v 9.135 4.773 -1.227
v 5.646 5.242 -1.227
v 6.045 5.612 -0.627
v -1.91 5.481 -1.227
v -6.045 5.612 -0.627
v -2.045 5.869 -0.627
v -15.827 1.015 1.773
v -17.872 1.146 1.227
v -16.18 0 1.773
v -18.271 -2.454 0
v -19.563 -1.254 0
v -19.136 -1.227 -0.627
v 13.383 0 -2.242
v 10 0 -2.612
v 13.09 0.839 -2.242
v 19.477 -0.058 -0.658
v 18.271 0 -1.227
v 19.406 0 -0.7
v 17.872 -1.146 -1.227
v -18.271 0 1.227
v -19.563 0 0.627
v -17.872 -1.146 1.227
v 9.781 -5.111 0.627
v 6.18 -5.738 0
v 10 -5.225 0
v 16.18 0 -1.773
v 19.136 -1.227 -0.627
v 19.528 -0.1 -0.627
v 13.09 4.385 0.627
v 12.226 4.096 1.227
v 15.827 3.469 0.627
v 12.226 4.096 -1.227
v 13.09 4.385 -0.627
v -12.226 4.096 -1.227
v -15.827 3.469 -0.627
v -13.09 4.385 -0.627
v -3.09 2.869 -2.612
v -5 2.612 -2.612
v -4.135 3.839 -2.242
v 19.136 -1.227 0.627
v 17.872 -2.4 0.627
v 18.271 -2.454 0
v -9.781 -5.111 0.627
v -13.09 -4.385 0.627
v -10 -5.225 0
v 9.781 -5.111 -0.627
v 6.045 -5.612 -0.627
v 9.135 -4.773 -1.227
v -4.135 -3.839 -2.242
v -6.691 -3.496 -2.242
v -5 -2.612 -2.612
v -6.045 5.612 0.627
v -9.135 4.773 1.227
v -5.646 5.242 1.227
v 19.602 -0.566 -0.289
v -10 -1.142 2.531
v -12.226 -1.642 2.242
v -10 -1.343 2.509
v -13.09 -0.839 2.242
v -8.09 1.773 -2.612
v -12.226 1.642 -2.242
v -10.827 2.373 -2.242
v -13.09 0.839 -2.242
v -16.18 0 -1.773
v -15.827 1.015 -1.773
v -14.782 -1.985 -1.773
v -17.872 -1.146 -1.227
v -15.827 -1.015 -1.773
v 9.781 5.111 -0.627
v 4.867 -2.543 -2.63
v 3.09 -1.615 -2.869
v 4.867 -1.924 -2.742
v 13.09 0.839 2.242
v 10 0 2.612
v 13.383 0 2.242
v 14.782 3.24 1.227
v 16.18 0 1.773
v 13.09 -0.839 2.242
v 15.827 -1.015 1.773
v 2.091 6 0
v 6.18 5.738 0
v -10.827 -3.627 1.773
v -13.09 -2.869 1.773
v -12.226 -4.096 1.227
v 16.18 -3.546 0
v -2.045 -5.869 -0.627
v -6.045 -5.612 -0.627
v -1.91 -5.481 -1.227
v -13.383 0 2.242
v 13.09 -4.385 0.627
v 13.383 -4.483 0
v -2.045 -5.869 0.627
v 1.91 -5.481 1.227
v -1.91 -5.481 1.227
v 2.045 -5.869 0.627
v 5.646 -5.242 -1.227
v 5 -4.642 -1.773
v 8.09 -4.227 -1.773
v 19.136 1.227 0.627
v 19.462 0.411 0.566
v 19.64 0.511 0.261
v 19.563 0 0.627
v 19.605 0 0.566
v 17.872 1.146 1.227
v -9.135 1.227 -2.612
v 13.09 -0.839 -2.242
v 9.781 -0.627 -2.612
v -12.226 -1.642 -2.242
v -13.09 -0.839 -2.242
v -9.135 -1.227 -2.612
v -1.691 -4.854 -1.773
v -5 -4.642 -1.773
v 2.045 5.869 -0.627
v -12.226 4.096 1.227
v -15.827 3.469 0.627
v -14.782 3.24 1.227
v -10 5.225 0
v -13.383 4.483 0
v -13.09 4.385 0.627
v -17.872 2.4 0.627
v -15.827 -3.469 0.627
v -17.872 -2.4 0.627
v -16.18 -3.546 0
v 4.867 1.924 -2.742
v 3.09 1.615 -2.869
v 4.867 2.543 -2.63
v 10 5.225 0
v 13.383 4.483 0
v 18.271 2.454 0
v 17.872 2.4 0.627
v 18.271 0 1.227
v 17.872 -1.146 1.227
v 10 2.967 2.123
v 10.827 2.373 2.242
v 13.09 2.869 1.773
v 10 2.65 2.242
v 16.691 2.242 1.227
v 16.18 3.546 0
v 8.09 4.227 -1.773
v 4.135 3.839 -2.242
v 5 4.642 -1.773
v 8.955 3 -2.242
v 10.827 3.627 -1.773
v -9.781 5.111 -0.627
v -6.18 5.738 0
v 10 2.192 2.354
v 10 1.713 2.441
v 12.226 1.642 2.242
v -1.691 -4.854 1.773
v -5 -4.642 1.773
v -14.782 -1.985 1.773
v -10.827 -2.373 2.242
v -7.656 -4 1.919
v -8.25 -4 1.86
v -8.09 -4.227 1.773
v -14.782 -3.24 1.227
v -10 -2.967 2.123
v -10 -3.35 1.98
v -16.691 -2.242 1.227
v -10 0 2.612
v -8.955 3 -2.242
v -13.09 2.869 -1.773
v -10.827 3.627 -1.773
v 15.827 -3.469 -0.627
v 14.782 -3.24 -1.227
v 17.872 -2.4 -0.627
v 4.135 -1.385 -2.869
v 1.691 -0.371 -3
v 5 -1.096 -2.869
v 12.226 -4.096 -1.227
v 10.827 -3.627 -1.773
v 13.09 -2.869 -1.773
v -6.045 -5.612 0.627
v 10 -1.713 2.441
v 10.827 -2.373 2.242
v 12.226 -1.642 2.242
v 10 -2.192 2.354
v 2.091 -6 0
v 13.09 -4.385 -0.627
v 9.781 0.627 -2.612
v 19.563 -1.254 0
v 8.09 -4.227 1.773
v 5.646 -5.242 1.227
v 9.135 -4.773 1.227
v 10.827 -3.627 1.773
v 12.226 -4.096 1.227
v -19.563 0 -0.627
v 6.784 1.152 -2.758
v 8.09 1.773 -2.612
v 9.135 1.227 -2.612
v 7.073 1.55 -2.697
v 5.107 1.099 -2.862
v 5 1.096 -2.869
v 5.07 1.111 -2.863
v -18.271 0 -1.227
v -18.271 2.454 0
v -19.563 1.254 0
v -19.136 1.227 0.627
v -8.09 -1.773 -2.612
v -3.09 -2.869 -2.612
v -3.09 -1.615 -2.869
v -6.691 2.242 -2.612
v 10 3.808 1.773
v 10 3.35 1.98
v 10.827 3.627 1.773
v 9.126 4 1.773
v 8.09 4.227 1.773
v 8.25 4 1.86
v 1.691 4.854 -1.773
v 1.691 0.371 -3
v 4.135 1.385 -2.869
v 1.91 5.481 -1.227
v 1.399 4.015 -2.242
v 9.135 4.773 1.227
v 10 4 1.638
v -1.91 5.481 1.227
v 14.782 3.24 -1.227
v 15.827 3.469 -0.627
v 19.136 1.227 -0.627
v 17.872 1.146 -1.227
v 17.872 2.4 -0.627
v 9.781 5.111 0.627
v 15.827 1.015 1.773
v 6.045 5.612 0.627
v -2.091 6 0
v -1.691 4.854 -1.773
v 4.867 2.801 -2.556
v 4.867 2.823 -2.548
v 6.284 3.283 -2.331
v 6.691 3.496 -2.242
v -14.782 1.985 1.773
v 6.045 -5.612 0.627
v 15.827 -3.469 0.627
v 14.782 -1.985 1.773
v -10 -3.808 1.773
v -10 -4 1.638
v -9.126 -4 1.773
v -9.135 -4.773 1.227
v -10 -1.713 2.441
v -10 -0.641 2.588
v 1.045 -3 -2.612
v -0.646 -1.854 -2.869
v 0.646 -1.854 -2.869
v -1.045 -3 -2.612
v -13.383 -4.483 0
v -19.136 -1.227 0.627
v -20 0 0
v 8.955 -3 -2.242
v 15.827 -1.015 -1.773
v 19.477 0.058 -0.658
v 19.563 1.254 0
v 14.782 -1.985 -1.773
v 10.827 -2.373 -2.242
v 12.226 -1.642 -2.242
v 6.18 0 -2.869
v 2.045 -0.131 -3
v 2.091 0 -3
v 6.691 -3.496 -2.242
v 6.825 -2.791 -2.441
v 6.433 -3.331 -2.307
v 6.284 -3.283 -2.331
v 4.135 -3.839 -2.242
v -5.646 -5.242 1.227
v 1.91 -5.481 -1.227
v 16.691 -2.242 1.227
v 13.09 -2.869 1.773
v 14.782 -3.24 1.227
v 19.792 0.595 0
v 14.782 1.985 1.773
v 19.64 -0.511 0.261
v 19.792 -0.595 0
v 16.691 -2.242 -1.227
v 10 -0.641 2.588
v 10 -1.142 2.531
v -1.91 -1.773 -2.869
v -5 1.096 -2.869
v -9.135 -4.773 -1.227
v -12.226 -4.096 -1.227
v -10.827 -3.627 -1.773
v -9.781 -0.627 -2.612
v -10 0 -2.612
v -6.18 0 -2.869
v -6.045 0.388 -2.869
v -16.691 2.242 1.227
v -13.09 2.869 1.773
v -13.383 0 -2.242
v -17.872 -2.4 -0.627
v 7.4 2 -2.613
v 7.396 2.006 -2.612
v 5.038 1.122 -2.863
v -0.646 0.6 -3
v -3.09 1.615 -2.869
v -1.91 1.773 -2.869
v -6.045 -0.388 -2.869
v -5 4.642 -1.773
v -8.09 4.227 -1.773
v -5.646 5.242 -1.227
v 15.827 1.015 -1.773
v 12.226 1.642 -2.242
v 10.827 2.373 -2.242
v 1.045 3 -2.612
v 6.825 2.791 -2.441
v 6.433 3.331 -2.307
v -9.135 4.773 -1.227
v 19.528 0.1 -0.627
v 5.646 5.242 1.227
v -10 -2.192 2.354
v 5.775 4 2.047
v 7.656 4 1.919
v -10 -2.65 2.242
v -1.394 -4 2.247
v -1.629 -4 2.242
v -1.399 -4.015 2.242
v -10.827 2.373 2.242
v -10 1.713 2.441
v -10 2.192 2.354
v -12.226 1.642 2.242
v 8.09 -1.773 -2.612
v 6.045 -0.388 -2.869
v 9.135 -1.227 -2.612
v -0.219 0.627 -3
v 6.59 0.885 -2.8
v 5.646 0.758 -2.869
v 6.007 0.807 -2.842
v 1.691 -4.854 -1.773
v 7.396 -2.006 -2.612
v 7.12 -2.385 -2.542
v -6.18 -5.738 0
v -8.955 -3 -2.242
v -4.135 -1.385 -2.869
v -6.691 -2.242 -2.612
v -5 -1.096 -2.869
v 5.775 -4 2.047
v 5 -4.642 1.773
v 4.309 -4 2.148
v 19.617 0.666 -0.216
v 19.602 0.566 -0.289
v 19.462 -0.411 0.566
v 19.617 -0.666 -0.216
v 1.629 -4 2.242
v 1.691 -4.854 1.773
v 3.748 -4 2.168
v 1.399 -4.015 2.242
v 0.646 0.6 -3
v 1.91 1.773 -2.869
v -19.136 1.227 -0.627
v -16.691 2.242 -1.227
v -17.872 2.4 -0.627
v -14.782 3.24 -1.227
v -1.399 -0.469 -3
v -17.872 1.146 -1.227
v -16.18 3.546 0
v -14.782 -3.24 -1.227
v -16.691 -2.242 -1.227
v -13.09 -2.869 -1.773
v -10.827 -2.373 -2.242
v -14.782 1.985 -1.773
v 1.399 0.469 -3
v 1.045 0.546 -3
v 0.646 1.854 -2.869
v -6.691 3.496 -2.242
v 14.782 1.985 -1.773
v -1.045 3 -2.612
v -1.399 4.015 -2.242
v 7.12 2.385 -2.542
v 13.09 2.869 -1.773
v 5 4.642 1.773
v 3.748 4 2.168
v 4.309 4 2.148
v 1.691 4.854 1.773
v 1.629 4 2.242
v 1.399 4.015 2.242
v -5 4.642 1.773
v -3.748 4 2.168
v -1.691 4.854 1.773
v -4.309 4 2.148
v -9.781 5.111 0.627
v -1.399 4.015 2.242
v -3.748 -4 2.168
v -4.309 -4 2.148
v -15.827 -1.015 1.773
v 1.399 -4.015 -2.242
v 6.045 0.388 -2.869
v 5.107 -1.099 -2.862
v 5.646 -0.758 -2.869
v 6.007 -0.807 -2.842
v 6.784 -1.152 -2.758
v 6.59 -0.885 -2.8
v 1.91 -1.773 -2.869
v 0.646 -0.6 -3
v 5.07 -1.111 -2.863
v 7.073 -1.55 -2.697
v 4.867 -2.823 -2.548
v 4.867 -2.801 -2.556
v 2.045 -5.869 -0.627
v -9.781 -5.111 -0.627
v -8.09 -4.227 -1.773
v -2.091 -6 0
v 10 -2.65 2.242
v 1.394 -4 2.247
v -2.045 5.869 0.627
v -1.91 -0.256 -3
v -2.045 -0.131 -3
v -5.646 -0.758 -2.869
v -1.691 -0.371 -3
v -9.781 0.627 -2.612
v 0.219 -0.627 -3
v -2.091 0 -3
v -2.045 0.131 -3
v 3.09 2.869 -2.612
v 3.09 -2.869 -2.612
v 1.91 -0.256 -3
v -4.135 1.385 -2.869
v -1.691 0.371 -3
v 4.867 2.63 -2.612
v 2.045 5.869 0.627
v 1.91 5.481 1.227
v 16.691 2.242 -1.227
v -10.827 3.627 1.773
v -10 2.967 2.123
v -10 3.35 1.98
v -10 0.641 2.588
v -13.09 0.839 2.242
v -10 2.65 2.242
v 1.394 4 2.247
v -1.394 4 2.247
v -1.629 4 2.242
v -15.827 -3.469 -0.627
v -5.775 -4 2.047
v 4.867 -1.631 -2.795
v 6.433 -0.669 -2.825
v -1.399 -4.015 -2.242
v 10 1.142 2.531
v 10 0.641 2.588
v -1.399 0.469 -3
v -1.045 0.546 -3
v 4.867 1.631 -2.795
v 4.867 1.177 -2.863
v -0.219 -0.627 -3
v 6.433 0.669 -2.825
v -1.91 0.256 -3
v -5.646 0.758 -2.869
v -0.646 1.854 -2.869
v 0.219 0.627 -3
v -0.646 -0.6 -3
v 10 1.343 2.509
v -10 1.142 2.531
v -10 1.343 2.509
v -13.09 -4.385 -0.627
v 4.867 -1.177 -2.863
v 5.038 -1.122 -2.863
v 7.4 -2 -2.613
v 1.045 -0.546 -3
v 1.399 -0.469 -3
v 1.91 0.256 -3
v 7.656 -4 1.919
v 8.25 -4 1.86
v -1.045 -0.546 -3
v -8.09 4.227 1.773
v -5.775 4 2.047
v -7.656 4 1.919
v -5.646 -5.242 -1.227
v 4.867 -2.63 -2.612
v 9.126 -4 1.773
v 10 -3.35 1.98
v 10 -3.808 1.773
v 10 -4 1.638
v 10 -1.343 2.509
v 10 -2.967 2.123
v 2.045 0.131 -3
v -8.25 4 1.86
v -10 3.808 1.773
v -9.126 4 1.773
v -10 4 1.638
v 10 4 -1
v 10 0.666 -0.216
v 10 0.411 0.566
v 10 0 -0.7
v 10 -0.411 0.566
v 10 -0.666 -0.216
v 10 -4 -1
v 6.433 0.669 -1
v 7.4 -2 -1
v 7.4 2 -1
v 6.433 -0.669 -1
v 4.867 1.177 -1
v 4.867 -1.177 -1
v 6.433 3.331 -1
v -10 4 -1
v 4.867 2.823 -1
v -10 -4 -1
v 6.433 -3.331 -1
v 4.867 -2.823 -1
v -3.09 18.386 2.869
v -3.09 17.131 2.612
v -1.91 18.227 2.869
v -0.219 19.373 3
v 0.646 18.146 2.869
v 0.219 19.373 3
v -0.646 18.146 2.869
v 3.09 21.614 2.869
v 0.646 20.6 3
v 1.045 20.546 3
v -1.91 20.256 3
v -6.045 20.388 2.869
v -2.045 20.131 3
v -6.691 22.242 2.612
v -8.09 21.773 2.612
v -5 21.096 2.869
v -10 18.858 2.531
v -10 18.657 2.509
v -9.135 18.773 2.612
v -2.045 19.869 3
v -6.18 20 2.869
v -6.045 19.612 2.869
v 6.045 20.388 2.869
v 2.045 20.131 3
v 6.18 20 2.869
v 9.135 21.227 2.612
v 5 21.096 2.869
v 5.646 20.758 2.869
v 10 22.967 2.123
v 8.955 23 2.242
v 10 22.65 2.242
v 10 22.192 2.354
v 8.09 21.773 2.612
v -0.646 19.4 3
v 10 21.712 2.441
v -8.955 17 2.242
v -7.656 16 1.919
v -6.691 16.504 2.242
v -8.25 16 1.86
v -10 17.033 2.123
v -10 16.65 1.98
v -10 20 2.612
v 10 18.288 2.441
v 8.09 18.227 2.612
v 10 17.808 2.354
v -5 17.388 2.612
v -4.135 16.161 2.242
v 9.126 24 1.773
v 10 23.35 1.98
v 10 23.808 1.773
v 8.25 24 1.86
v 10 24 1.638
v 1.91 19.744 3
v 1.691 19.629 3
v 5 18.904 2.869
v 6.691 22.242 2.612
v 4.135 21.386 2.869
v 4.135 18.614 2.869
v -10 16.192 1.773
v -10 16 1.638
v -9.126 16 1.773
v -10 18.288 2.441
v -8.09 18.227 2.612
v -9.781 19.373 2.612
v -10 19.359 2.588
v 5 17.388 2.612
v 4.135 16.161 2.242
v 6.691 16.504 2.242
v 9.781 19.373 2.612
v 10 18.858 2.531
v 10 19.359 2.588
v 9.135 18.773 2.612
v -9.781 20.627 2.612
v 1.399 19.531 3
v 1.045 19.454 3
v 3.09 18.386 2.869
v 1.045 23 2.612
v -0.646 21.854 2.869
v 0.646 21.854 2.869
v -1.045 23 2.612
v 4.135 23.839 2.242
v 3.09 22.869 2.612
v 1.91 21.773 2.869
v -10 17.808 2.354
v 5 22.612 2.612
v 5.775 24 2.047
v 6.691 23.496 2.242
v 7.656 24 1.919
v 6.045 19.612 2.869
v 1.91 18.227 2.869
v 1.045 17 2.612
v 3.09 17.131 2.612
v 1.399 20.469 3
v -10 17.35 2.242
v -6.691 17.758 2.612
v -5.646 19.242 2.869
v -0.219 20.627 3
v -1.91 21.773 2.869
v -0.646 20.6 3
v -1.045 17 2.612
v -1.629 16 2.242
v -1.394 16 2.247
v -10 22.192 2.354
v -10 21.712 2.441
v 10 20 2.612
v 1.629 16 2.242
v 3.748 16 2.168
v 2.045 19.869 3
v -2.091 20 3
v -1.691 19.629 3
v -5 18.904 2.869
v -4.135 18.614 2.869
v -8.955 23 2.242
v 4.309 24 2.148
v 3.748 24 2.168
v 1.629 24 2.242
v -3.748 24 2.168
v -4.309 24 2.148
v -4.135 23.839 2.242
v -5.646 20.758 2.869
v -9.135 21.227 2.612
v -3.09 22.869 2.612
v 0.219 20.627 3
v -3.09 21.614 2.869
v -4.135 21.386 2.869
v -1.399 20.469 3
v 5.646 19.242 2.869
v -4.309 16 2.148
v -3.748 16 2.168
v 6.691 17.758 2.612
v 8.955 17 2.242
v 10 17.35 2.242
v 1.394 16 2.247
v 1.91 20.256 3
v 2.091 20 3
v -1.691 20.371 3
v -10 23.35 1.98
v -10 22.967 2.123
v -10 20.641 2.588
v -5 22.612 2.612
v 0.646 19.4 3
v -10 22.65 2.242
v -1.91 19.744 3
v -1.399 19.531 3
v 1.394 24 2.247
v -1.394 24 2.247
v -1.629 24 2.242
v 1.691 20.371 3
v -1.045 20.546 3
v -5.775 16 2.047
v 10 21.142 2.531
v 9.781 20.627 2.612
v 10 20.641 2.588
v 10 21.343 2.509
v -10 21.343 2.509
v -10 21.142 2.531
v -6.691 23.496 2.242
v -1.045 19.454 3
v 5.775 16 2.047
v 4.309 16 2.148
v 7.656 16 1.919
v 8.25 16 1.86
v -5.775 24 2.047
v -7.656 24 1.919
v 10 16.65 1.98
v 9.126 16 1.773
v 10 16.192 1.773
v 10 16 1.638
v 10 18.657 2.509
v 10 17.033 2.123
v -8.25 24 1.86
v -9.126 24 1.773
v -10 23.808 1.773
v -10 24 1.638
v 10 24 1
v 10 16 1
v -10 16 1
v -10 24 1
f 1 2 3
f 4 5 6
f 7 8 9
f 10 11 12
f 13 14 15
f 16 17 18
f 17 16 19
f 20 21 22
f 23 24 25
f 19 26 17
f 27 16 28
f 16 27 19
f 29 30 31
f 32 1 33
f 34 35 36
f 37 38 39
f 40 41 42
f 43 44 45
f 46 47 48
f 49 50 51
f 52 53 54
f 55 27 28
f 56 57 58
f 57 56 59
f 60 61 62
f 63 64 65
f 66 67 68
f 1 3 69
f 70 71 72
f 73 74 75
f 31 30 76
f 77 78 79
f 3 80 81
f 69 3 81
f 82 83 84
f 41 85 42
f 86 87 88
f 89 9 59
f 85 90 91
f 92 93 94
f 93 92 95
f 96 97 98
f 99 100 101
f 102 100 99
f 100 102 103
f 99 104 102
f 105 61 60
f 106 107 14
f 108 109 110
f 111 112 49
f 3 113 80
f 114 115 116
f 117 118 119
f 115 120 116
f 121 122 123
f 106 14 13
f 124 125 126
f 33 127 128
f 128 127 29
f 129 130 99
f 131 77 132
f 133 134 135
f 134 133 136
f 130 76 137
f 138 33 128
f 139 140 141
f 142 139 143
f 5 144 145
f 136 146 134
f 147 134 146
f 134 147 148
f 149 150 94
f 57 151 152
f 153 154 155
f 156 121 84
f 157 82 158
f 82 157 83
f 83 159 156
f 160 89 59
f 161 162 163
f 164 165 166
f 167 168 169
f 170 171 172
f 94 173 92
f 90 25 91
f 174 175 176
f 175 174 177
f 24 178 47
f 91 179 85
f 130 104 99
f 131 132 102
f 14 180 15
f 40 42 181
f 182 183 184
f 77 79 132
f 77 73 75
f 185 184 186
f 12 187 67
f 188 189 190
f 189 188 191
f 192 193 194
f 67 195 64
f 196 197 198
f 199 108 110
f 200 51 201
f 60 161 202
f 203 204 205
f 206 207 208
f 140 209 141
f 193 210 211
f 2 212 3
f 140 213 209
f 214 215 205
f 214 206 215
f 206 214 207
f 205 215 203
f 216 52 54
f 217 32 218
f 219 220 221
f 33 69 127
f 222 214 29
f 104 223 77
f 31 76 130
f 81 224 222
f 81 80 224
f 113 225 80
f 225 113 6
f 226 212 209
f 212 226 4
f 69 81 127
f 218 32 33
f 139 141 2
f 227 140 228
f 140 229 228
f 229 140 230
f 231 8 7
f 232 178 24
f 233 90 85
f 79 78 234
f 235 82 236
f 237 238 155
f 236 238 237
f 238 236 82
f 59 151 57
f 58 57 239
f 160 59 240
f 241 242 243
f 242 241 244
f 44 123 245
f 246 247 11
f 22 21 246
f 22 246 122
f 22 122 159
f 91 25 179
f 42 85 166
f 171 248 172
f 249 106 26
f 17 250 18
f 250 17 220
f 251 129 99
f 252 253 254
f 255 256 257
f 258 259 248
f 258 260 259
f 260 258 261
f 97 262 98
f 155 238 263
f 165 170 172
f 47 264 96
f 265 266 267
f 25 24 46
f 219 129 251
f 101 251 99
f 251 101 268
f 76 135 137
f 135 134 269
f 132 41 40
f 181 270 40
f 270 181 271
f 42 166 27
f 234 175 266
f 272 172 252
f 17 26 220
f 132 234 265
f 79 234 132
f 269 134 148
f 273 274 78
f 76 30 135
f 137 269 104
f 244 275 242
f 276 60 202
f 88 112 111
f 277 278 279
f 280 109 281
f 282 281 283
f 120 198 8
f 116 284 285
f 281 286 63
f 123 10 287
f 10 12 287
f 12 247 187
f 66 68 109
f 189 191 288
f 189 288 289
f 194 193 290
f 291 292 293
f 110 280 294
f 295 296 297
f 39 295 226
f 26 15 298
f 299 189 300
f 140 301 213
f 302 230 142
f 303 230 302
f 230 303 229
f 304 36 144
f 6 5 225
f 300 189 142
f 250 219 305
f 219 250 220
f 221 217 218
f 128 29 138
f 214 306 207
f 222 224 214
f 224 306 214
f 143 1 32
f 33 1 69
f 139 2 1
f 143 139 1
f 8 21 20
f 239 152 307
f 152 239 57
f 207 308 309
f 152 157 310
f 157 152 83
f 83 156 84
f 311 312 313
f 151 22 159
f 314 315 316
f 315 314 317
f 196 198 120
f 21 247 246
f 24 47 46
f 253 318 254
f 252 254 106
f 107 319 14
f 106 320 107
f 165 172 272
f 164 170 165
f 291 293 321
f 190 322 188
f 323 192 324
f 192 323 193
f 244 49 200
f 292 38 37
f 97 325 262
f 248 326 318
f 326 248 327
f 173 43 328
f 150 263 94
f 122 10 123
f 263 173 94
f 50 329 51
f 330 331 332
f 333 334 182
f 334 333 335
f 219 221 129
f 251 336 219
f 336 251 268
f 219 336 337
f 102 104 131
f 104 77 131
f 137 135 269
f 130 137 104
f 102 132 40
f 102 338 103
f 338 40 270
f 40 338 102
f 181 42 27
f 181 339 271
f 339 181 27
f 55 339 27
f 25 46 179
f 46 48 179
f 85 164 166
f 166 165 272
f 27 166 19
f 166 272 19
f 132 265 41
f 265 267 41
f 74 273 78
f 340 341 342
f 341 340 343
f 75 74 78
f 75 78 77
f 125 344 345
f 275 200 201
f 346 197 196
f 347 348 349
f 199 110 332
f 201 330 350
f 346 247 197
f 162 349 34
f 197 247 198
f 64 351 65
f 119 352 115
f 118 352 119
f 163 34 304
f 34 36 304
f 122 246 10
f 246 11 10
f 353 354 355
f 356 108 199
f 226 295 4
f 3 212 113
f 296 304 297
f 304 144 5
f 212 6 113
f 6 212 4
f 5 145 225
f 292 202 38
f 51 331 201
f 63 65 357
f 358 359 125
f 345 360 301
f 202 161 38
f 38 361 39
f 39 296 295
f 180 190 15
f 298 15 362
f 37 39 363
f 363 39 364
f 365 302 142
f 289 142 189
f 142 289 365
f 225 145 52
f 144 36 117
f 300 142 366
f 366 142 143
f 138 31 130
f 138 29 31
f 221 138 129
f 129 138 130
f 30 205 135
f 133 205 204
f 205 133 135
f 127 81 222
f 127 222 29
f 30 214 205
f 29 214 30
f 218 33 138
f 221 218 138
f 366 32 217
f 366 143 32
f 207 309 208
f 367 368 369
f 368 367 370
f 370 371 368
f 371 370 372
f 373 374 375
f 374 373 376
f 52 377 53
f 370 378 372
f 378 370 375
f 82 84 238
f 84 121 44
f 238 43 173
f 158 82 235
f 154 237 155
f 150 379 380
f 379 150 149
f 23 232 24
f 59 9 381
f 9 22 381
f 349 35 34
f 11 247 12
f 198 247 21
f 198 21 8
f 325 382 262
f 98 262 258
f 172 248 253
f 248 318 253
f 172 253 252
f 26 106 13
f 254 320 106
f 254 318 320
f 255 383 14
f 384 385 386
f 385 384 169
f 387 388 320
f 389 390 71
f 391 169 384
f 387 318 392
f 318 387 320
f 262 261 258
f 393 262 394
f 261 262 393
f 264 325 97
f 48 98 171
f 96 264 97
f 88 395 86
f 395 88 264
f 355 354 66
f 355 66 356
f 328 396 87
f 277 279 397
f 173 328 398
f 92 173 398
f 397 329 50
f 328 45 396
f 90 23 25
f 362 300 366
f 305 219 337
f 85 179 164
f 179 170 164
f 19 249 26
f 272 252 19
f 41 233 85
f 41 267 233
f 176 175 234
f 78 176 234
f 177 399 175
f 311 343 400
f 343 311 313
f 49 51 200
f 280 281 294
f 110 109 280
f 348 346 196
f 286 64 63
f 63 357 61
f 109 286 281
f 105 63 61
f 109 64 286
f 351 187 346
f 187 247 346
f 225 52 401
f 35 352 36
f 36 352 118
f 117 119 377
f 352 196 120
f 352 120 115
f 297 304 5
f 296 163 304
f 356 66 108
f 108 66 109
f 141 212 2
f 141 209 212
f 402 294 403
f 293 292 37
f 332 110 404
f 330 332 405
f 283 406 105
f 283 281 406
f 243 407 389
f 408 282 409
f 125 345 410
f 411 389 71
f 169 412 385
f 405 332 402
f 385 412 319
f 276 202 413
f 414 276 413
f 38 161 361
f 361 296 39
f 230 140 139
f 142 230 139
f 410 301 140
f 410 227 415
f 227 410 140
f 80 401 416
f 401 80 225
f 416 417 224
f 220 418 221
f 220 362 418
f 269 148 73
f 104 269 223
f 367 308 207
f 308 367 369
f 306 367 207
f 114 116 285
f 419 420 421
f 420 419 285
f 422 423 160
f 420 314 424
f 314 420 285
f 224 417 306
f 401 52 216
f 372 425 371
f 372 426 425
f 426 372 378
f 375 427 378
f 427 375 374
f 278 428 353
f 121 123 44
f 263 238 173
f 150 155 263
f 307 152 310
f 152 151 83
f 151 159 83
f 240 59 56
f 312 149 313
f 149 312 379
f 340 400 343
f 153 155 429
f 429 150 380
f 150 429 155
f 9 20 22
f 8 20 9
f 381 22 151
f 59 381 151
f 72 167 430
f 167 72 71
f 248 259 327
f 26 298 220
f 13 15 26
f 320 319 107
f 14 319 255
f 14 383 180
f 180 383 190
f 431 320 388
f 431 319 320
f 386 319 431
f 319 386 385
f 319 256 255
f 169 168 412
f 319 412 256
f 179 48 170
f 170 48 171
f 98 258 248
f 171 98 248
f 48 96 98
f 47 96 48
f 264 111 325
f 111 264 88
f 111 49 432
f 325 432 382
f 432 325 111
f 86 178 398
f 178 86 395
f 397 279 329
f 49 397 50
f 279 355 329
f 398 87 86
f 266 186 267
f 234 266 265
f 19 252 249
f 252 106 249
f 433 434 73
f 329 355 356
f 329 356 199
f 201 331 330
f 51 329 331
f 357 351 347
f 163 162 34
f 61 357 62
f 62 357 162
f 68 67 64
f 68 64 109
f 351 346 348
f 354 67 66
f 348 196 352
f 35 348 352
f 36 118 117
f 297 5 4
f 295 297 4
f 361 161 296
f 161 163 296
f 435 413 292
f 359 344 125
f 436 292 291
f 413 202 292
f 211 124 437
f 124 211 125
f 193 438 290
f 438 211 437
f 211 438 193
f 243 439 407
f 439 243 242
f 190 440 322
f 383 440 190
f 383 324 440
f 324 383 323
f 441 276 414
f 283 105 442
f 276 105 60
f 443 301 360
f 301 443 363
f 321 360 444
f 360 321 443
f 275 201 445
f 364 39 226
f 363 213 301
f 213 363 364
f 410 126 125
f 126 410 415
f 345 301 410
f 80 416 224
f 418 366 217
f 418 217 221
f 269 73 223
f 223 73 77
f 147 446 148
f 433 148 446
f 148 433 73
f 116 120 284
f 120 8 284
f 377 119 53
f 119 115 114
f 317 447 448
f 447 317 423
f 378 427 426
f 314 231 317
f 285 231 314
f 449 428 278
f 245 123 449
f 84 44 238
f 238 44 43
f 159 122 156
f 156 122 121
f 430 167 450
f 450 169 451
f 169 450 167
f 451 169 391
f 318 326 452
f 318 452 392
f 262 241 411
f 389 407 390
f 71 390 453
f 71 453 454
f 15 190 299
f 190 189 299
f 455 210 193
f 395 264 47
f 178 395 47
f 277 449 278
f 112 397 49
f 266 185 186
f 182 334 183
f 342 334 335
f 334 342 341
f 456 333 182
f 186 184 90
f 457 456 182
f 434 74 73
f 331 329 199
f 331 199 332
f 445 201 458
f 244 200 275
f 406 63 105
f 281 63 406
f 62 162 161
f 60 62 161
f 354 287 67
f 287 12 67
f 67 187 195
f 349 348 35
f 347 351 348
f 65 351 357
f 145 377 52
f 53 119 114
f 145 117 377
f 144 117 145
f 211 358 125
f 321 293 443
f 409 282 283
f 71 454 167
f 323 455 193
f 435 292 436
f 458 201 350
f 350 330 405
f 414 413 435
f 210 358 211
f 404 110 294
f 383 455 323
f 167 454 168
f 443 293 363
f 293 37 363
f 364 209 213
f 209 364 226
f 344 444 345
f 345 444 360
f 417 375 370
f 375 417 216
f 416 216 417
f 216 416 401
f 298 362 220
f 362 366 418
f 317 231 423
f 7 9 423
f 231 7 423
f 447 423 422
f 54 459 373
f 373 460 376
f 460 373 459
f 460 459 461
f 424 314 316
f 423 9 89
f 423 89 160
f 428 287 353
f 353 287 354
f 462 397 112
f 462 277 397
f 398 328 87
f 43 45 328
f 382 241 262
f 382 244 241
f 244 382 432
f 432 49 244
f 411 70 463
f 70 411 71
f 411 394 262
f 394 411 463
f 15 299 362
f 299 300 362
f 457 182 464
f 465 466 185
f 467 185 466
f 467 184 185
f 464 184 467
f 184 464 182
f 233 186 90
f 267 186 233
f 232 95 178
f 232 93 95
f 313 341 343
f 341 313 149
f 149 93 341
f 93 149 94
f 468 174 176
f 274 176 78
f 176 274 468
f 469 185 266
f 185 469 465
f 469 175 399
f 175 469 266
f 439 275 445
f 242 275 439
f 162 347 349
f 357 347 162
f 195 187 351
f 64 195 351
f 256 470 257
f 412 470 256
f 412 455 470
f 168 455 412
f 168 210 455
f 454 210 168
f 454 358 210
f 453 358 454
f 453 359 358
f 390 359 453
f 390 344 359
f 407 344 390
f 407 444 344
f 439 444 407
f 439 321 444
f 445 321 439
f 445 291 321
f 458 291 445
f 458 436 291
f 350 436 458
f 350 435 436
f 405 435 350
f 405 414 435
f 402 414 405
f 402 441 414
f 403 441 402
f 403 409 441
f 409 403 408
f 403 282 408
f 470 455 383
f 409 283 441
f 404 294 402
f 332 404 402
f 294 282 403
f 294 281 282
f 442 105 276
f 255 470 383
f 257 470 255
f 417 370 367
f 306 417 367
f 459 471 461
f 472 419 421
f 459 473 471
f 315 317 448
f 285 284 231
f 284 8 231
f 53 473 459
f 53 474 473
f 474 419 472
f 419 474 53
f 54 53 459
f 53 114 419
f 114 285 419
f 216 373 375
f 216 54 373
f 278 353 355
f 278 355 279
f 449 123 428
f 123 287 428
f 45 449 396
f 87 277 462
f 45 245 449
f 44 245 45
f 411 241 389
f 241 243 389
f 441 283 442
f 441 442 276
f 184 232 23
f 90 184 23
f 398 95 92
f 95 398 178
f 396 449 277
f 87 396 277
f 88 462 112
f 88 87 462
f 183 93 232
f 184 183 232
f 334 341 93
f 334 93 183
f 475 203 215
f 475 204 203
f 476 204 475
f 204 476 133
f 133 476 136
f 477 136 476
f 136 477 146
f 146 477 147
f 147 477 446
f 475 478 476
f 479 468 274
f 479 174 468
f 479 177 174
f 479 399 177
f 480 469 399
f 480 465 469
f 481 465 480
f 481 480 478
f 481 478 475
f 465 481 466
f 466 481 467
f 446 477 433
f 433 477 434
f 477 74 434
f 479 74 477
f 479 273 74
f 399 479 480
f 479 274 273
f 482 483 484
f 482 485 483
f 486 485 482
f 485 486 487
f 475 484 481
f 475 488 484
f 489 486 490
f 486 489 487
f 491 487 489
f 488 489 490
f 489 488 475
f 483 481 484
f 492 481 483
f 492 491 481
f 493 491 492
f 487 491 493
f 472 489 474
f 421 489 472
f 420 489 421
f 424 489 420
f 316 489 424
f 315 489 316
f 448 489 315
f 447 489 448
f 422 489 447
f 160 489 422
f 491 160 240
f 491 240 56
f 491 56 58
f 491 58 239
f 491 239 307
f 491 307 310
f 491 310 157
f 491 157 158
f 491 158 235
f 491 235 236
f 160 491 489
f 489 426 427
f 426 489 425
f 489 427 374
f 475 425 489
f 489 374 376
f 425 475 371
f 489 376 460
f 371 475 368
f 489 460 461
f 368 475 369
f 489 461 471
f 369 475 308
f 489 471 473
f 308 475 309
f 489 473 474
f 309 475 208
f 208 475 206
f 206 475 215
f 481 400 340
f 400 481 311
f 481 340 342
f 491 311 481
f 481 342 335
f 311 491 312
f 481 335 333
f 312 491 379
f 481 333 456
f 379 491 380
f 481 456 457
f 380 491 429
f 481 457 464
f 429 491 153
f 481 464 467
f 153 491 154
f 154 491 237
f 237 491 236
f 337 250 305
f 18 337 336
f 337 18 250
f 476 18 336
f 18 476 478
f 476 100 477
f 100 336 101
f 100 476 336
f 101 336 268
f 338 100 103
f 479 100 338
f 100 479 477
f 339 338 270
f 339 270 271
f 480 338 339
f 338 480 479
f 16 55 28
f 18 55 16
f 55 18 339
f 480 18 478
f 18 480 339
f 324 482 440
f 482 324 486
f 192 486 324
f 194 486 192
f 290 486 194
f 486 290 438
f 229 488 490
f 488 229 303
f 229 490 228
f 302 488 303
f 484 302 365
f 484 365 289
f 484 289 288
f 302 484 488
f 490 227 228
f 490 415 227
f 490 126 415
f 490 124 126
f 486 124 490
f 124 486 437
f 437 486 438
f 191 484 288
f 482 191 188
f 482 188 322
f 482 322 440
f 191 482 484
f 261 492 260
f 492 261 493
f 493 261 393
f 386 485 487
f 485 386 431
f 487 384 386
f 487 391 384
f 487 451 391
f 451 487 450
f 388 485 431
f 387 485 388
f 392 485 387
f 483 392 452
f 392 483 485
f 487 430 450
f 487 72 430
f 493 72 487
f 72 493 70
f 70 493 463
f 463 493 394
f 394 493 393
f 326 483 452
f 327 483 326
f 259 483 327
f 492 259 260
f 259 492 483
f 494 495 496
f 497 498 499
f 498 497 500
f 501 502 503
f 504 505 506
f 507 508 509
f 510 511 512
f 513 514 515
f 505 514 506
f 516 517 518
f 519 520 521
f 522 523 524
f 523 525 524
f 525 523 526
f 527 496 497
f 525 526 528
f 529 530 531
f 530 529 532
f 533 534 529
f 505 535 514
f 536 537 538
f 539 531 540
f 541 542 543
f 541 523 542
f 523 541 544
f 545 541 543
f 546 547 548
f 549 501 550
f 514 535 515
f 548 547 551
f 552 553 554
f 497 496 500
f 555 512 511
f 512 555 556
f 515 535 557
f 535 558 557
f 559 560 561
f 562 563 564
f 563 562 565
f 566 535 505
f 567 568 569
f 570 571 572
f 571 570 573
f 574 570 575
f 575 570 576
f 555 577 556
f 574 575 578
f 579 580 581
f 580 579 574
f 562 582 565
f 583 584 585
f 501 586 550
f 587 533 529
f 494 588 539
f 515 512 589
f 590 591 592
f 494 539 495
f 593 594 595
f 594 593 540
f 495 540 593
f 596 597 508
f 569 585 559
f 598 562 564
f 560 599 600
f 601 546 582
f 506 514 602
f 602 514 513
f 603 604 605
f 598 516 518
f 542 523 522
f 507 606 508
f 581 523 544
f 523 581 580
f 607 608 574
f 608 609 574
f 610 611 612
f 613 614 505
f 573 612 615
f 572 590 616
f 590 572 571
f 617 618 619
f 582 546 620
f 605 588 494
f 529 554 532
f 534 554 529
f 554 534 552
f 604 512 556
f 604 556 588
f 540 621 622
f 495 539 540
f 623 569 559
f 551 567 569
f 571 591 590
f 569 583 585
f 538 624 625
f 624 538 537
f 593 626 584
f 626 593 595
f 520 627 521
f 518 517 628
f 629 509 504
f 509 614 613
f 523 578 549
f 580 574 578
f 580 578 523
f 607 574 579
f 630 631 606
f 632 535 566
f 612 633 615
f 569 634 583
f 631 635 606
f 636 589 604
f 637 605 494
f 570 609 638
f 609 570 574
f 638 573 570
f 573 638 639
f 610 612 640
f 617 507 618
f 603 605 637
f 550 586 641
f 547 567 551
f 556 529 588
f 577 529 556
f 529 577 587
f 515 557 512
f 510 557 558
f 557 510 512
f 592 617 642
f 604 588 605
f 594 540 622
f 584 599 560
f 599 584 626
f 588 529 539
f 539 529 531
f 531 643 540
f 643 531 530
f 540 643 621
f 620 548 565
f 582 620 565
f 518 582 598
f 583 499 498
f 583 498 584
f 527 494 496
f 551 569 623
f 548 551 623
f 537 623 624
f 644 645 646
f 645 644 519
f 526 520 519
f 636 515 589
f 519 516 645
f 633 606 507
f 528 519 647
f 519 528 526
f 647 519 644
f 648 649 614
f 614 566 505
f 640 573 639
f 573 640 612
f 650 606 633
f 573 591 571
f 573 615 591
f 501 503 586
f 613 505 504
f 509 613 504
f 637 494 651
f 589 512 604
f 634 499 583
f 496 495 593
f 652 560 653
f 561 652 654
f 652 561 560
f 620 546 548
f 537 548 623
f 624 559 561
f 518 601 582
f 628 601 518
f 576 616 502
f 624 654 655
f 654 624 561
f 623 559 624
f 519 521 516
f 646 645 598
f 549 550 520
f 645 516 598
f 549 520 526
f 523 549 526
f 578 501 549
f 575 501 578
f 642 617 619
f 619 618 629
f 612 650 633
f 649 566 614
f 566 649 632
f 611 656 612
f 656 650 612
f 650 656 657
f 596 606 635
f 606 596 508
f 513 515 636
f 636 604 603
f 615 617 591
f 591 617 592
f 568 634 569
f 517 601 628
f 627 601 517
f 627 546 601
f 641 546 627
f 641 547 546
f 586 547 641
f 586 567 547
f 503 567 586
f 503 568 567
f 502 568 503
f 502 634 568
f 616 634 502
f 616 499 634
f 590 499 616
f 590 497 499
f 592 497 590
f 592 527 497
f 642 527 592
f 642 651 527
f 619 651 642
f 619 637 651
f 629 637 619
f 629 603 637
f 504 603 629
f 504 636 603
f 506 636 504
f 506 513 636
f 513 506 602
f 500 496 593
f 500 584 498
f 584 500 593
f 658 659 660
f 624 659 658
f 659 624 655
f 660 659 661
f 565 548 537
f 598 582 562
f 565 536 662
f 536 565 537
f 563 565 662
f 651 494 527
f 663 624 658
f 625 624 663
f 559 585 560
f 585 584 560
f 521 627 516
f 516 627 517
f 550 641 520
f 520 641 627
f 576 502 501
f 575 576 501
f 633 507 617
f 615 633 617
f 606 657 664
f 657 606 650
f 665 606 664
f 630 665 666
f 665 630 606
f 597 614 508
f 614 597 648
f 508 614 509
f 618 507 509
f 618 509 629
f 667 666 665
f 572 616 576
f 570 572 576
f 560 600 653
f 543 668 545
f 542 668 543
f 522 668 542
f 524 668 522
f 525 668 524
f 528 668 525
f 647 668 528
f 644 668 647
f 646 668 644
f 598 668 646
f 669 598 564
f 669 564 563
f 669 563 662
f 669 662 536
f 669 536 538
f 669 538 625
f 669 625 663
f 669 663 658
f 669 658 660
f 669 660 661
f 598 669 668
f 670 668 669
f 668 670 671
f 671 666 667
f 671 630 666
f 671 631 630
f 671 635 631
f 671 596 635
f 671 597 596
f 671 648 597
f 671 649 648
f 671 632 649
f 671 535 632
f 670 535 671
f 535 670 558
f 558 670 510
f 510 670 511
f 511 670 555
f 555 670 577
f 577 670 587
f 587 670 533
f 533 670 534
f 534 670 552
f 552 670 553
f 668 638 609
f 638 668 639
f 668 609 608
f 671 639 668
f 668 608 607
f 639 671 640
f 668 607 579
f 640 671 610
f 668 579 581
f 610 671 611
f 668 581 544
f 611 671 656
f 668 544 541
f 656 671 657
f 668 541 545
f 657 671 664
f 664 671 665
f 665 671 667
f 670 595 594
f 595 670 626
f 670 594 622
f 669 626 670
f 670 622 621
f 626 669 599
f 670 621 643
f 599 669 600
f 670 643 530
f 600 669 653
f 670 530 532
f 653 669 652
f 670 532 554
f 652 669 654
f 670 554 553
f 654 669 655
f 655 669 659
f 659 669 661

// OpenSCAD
difference(){
    resize([40,12,6])sphere(r=10);
    translate([0,0,2])
        cube([20,8,6],center=true);
    translate([9,0,0])
        rotate([0,90,0])cylinder(h=12,r=0.7);
    translate([9,0,0])
        rotate([0,90,0])cylinder(h=12,r=0.7);translate([6,3,0])
        cylinder(h=5,r=1.4);
    translate([6,2,-4])
        cylinder(h=4,r=1.4);
    translate([6,-2,-4])
        cylinder(h=4,r=1.4);
}

translate([0,20,0])intersection(){
    resize([40,12,6])sphere(r=10);
    translate([0,0,4])
        cube([20,8,6],center=true);
}
